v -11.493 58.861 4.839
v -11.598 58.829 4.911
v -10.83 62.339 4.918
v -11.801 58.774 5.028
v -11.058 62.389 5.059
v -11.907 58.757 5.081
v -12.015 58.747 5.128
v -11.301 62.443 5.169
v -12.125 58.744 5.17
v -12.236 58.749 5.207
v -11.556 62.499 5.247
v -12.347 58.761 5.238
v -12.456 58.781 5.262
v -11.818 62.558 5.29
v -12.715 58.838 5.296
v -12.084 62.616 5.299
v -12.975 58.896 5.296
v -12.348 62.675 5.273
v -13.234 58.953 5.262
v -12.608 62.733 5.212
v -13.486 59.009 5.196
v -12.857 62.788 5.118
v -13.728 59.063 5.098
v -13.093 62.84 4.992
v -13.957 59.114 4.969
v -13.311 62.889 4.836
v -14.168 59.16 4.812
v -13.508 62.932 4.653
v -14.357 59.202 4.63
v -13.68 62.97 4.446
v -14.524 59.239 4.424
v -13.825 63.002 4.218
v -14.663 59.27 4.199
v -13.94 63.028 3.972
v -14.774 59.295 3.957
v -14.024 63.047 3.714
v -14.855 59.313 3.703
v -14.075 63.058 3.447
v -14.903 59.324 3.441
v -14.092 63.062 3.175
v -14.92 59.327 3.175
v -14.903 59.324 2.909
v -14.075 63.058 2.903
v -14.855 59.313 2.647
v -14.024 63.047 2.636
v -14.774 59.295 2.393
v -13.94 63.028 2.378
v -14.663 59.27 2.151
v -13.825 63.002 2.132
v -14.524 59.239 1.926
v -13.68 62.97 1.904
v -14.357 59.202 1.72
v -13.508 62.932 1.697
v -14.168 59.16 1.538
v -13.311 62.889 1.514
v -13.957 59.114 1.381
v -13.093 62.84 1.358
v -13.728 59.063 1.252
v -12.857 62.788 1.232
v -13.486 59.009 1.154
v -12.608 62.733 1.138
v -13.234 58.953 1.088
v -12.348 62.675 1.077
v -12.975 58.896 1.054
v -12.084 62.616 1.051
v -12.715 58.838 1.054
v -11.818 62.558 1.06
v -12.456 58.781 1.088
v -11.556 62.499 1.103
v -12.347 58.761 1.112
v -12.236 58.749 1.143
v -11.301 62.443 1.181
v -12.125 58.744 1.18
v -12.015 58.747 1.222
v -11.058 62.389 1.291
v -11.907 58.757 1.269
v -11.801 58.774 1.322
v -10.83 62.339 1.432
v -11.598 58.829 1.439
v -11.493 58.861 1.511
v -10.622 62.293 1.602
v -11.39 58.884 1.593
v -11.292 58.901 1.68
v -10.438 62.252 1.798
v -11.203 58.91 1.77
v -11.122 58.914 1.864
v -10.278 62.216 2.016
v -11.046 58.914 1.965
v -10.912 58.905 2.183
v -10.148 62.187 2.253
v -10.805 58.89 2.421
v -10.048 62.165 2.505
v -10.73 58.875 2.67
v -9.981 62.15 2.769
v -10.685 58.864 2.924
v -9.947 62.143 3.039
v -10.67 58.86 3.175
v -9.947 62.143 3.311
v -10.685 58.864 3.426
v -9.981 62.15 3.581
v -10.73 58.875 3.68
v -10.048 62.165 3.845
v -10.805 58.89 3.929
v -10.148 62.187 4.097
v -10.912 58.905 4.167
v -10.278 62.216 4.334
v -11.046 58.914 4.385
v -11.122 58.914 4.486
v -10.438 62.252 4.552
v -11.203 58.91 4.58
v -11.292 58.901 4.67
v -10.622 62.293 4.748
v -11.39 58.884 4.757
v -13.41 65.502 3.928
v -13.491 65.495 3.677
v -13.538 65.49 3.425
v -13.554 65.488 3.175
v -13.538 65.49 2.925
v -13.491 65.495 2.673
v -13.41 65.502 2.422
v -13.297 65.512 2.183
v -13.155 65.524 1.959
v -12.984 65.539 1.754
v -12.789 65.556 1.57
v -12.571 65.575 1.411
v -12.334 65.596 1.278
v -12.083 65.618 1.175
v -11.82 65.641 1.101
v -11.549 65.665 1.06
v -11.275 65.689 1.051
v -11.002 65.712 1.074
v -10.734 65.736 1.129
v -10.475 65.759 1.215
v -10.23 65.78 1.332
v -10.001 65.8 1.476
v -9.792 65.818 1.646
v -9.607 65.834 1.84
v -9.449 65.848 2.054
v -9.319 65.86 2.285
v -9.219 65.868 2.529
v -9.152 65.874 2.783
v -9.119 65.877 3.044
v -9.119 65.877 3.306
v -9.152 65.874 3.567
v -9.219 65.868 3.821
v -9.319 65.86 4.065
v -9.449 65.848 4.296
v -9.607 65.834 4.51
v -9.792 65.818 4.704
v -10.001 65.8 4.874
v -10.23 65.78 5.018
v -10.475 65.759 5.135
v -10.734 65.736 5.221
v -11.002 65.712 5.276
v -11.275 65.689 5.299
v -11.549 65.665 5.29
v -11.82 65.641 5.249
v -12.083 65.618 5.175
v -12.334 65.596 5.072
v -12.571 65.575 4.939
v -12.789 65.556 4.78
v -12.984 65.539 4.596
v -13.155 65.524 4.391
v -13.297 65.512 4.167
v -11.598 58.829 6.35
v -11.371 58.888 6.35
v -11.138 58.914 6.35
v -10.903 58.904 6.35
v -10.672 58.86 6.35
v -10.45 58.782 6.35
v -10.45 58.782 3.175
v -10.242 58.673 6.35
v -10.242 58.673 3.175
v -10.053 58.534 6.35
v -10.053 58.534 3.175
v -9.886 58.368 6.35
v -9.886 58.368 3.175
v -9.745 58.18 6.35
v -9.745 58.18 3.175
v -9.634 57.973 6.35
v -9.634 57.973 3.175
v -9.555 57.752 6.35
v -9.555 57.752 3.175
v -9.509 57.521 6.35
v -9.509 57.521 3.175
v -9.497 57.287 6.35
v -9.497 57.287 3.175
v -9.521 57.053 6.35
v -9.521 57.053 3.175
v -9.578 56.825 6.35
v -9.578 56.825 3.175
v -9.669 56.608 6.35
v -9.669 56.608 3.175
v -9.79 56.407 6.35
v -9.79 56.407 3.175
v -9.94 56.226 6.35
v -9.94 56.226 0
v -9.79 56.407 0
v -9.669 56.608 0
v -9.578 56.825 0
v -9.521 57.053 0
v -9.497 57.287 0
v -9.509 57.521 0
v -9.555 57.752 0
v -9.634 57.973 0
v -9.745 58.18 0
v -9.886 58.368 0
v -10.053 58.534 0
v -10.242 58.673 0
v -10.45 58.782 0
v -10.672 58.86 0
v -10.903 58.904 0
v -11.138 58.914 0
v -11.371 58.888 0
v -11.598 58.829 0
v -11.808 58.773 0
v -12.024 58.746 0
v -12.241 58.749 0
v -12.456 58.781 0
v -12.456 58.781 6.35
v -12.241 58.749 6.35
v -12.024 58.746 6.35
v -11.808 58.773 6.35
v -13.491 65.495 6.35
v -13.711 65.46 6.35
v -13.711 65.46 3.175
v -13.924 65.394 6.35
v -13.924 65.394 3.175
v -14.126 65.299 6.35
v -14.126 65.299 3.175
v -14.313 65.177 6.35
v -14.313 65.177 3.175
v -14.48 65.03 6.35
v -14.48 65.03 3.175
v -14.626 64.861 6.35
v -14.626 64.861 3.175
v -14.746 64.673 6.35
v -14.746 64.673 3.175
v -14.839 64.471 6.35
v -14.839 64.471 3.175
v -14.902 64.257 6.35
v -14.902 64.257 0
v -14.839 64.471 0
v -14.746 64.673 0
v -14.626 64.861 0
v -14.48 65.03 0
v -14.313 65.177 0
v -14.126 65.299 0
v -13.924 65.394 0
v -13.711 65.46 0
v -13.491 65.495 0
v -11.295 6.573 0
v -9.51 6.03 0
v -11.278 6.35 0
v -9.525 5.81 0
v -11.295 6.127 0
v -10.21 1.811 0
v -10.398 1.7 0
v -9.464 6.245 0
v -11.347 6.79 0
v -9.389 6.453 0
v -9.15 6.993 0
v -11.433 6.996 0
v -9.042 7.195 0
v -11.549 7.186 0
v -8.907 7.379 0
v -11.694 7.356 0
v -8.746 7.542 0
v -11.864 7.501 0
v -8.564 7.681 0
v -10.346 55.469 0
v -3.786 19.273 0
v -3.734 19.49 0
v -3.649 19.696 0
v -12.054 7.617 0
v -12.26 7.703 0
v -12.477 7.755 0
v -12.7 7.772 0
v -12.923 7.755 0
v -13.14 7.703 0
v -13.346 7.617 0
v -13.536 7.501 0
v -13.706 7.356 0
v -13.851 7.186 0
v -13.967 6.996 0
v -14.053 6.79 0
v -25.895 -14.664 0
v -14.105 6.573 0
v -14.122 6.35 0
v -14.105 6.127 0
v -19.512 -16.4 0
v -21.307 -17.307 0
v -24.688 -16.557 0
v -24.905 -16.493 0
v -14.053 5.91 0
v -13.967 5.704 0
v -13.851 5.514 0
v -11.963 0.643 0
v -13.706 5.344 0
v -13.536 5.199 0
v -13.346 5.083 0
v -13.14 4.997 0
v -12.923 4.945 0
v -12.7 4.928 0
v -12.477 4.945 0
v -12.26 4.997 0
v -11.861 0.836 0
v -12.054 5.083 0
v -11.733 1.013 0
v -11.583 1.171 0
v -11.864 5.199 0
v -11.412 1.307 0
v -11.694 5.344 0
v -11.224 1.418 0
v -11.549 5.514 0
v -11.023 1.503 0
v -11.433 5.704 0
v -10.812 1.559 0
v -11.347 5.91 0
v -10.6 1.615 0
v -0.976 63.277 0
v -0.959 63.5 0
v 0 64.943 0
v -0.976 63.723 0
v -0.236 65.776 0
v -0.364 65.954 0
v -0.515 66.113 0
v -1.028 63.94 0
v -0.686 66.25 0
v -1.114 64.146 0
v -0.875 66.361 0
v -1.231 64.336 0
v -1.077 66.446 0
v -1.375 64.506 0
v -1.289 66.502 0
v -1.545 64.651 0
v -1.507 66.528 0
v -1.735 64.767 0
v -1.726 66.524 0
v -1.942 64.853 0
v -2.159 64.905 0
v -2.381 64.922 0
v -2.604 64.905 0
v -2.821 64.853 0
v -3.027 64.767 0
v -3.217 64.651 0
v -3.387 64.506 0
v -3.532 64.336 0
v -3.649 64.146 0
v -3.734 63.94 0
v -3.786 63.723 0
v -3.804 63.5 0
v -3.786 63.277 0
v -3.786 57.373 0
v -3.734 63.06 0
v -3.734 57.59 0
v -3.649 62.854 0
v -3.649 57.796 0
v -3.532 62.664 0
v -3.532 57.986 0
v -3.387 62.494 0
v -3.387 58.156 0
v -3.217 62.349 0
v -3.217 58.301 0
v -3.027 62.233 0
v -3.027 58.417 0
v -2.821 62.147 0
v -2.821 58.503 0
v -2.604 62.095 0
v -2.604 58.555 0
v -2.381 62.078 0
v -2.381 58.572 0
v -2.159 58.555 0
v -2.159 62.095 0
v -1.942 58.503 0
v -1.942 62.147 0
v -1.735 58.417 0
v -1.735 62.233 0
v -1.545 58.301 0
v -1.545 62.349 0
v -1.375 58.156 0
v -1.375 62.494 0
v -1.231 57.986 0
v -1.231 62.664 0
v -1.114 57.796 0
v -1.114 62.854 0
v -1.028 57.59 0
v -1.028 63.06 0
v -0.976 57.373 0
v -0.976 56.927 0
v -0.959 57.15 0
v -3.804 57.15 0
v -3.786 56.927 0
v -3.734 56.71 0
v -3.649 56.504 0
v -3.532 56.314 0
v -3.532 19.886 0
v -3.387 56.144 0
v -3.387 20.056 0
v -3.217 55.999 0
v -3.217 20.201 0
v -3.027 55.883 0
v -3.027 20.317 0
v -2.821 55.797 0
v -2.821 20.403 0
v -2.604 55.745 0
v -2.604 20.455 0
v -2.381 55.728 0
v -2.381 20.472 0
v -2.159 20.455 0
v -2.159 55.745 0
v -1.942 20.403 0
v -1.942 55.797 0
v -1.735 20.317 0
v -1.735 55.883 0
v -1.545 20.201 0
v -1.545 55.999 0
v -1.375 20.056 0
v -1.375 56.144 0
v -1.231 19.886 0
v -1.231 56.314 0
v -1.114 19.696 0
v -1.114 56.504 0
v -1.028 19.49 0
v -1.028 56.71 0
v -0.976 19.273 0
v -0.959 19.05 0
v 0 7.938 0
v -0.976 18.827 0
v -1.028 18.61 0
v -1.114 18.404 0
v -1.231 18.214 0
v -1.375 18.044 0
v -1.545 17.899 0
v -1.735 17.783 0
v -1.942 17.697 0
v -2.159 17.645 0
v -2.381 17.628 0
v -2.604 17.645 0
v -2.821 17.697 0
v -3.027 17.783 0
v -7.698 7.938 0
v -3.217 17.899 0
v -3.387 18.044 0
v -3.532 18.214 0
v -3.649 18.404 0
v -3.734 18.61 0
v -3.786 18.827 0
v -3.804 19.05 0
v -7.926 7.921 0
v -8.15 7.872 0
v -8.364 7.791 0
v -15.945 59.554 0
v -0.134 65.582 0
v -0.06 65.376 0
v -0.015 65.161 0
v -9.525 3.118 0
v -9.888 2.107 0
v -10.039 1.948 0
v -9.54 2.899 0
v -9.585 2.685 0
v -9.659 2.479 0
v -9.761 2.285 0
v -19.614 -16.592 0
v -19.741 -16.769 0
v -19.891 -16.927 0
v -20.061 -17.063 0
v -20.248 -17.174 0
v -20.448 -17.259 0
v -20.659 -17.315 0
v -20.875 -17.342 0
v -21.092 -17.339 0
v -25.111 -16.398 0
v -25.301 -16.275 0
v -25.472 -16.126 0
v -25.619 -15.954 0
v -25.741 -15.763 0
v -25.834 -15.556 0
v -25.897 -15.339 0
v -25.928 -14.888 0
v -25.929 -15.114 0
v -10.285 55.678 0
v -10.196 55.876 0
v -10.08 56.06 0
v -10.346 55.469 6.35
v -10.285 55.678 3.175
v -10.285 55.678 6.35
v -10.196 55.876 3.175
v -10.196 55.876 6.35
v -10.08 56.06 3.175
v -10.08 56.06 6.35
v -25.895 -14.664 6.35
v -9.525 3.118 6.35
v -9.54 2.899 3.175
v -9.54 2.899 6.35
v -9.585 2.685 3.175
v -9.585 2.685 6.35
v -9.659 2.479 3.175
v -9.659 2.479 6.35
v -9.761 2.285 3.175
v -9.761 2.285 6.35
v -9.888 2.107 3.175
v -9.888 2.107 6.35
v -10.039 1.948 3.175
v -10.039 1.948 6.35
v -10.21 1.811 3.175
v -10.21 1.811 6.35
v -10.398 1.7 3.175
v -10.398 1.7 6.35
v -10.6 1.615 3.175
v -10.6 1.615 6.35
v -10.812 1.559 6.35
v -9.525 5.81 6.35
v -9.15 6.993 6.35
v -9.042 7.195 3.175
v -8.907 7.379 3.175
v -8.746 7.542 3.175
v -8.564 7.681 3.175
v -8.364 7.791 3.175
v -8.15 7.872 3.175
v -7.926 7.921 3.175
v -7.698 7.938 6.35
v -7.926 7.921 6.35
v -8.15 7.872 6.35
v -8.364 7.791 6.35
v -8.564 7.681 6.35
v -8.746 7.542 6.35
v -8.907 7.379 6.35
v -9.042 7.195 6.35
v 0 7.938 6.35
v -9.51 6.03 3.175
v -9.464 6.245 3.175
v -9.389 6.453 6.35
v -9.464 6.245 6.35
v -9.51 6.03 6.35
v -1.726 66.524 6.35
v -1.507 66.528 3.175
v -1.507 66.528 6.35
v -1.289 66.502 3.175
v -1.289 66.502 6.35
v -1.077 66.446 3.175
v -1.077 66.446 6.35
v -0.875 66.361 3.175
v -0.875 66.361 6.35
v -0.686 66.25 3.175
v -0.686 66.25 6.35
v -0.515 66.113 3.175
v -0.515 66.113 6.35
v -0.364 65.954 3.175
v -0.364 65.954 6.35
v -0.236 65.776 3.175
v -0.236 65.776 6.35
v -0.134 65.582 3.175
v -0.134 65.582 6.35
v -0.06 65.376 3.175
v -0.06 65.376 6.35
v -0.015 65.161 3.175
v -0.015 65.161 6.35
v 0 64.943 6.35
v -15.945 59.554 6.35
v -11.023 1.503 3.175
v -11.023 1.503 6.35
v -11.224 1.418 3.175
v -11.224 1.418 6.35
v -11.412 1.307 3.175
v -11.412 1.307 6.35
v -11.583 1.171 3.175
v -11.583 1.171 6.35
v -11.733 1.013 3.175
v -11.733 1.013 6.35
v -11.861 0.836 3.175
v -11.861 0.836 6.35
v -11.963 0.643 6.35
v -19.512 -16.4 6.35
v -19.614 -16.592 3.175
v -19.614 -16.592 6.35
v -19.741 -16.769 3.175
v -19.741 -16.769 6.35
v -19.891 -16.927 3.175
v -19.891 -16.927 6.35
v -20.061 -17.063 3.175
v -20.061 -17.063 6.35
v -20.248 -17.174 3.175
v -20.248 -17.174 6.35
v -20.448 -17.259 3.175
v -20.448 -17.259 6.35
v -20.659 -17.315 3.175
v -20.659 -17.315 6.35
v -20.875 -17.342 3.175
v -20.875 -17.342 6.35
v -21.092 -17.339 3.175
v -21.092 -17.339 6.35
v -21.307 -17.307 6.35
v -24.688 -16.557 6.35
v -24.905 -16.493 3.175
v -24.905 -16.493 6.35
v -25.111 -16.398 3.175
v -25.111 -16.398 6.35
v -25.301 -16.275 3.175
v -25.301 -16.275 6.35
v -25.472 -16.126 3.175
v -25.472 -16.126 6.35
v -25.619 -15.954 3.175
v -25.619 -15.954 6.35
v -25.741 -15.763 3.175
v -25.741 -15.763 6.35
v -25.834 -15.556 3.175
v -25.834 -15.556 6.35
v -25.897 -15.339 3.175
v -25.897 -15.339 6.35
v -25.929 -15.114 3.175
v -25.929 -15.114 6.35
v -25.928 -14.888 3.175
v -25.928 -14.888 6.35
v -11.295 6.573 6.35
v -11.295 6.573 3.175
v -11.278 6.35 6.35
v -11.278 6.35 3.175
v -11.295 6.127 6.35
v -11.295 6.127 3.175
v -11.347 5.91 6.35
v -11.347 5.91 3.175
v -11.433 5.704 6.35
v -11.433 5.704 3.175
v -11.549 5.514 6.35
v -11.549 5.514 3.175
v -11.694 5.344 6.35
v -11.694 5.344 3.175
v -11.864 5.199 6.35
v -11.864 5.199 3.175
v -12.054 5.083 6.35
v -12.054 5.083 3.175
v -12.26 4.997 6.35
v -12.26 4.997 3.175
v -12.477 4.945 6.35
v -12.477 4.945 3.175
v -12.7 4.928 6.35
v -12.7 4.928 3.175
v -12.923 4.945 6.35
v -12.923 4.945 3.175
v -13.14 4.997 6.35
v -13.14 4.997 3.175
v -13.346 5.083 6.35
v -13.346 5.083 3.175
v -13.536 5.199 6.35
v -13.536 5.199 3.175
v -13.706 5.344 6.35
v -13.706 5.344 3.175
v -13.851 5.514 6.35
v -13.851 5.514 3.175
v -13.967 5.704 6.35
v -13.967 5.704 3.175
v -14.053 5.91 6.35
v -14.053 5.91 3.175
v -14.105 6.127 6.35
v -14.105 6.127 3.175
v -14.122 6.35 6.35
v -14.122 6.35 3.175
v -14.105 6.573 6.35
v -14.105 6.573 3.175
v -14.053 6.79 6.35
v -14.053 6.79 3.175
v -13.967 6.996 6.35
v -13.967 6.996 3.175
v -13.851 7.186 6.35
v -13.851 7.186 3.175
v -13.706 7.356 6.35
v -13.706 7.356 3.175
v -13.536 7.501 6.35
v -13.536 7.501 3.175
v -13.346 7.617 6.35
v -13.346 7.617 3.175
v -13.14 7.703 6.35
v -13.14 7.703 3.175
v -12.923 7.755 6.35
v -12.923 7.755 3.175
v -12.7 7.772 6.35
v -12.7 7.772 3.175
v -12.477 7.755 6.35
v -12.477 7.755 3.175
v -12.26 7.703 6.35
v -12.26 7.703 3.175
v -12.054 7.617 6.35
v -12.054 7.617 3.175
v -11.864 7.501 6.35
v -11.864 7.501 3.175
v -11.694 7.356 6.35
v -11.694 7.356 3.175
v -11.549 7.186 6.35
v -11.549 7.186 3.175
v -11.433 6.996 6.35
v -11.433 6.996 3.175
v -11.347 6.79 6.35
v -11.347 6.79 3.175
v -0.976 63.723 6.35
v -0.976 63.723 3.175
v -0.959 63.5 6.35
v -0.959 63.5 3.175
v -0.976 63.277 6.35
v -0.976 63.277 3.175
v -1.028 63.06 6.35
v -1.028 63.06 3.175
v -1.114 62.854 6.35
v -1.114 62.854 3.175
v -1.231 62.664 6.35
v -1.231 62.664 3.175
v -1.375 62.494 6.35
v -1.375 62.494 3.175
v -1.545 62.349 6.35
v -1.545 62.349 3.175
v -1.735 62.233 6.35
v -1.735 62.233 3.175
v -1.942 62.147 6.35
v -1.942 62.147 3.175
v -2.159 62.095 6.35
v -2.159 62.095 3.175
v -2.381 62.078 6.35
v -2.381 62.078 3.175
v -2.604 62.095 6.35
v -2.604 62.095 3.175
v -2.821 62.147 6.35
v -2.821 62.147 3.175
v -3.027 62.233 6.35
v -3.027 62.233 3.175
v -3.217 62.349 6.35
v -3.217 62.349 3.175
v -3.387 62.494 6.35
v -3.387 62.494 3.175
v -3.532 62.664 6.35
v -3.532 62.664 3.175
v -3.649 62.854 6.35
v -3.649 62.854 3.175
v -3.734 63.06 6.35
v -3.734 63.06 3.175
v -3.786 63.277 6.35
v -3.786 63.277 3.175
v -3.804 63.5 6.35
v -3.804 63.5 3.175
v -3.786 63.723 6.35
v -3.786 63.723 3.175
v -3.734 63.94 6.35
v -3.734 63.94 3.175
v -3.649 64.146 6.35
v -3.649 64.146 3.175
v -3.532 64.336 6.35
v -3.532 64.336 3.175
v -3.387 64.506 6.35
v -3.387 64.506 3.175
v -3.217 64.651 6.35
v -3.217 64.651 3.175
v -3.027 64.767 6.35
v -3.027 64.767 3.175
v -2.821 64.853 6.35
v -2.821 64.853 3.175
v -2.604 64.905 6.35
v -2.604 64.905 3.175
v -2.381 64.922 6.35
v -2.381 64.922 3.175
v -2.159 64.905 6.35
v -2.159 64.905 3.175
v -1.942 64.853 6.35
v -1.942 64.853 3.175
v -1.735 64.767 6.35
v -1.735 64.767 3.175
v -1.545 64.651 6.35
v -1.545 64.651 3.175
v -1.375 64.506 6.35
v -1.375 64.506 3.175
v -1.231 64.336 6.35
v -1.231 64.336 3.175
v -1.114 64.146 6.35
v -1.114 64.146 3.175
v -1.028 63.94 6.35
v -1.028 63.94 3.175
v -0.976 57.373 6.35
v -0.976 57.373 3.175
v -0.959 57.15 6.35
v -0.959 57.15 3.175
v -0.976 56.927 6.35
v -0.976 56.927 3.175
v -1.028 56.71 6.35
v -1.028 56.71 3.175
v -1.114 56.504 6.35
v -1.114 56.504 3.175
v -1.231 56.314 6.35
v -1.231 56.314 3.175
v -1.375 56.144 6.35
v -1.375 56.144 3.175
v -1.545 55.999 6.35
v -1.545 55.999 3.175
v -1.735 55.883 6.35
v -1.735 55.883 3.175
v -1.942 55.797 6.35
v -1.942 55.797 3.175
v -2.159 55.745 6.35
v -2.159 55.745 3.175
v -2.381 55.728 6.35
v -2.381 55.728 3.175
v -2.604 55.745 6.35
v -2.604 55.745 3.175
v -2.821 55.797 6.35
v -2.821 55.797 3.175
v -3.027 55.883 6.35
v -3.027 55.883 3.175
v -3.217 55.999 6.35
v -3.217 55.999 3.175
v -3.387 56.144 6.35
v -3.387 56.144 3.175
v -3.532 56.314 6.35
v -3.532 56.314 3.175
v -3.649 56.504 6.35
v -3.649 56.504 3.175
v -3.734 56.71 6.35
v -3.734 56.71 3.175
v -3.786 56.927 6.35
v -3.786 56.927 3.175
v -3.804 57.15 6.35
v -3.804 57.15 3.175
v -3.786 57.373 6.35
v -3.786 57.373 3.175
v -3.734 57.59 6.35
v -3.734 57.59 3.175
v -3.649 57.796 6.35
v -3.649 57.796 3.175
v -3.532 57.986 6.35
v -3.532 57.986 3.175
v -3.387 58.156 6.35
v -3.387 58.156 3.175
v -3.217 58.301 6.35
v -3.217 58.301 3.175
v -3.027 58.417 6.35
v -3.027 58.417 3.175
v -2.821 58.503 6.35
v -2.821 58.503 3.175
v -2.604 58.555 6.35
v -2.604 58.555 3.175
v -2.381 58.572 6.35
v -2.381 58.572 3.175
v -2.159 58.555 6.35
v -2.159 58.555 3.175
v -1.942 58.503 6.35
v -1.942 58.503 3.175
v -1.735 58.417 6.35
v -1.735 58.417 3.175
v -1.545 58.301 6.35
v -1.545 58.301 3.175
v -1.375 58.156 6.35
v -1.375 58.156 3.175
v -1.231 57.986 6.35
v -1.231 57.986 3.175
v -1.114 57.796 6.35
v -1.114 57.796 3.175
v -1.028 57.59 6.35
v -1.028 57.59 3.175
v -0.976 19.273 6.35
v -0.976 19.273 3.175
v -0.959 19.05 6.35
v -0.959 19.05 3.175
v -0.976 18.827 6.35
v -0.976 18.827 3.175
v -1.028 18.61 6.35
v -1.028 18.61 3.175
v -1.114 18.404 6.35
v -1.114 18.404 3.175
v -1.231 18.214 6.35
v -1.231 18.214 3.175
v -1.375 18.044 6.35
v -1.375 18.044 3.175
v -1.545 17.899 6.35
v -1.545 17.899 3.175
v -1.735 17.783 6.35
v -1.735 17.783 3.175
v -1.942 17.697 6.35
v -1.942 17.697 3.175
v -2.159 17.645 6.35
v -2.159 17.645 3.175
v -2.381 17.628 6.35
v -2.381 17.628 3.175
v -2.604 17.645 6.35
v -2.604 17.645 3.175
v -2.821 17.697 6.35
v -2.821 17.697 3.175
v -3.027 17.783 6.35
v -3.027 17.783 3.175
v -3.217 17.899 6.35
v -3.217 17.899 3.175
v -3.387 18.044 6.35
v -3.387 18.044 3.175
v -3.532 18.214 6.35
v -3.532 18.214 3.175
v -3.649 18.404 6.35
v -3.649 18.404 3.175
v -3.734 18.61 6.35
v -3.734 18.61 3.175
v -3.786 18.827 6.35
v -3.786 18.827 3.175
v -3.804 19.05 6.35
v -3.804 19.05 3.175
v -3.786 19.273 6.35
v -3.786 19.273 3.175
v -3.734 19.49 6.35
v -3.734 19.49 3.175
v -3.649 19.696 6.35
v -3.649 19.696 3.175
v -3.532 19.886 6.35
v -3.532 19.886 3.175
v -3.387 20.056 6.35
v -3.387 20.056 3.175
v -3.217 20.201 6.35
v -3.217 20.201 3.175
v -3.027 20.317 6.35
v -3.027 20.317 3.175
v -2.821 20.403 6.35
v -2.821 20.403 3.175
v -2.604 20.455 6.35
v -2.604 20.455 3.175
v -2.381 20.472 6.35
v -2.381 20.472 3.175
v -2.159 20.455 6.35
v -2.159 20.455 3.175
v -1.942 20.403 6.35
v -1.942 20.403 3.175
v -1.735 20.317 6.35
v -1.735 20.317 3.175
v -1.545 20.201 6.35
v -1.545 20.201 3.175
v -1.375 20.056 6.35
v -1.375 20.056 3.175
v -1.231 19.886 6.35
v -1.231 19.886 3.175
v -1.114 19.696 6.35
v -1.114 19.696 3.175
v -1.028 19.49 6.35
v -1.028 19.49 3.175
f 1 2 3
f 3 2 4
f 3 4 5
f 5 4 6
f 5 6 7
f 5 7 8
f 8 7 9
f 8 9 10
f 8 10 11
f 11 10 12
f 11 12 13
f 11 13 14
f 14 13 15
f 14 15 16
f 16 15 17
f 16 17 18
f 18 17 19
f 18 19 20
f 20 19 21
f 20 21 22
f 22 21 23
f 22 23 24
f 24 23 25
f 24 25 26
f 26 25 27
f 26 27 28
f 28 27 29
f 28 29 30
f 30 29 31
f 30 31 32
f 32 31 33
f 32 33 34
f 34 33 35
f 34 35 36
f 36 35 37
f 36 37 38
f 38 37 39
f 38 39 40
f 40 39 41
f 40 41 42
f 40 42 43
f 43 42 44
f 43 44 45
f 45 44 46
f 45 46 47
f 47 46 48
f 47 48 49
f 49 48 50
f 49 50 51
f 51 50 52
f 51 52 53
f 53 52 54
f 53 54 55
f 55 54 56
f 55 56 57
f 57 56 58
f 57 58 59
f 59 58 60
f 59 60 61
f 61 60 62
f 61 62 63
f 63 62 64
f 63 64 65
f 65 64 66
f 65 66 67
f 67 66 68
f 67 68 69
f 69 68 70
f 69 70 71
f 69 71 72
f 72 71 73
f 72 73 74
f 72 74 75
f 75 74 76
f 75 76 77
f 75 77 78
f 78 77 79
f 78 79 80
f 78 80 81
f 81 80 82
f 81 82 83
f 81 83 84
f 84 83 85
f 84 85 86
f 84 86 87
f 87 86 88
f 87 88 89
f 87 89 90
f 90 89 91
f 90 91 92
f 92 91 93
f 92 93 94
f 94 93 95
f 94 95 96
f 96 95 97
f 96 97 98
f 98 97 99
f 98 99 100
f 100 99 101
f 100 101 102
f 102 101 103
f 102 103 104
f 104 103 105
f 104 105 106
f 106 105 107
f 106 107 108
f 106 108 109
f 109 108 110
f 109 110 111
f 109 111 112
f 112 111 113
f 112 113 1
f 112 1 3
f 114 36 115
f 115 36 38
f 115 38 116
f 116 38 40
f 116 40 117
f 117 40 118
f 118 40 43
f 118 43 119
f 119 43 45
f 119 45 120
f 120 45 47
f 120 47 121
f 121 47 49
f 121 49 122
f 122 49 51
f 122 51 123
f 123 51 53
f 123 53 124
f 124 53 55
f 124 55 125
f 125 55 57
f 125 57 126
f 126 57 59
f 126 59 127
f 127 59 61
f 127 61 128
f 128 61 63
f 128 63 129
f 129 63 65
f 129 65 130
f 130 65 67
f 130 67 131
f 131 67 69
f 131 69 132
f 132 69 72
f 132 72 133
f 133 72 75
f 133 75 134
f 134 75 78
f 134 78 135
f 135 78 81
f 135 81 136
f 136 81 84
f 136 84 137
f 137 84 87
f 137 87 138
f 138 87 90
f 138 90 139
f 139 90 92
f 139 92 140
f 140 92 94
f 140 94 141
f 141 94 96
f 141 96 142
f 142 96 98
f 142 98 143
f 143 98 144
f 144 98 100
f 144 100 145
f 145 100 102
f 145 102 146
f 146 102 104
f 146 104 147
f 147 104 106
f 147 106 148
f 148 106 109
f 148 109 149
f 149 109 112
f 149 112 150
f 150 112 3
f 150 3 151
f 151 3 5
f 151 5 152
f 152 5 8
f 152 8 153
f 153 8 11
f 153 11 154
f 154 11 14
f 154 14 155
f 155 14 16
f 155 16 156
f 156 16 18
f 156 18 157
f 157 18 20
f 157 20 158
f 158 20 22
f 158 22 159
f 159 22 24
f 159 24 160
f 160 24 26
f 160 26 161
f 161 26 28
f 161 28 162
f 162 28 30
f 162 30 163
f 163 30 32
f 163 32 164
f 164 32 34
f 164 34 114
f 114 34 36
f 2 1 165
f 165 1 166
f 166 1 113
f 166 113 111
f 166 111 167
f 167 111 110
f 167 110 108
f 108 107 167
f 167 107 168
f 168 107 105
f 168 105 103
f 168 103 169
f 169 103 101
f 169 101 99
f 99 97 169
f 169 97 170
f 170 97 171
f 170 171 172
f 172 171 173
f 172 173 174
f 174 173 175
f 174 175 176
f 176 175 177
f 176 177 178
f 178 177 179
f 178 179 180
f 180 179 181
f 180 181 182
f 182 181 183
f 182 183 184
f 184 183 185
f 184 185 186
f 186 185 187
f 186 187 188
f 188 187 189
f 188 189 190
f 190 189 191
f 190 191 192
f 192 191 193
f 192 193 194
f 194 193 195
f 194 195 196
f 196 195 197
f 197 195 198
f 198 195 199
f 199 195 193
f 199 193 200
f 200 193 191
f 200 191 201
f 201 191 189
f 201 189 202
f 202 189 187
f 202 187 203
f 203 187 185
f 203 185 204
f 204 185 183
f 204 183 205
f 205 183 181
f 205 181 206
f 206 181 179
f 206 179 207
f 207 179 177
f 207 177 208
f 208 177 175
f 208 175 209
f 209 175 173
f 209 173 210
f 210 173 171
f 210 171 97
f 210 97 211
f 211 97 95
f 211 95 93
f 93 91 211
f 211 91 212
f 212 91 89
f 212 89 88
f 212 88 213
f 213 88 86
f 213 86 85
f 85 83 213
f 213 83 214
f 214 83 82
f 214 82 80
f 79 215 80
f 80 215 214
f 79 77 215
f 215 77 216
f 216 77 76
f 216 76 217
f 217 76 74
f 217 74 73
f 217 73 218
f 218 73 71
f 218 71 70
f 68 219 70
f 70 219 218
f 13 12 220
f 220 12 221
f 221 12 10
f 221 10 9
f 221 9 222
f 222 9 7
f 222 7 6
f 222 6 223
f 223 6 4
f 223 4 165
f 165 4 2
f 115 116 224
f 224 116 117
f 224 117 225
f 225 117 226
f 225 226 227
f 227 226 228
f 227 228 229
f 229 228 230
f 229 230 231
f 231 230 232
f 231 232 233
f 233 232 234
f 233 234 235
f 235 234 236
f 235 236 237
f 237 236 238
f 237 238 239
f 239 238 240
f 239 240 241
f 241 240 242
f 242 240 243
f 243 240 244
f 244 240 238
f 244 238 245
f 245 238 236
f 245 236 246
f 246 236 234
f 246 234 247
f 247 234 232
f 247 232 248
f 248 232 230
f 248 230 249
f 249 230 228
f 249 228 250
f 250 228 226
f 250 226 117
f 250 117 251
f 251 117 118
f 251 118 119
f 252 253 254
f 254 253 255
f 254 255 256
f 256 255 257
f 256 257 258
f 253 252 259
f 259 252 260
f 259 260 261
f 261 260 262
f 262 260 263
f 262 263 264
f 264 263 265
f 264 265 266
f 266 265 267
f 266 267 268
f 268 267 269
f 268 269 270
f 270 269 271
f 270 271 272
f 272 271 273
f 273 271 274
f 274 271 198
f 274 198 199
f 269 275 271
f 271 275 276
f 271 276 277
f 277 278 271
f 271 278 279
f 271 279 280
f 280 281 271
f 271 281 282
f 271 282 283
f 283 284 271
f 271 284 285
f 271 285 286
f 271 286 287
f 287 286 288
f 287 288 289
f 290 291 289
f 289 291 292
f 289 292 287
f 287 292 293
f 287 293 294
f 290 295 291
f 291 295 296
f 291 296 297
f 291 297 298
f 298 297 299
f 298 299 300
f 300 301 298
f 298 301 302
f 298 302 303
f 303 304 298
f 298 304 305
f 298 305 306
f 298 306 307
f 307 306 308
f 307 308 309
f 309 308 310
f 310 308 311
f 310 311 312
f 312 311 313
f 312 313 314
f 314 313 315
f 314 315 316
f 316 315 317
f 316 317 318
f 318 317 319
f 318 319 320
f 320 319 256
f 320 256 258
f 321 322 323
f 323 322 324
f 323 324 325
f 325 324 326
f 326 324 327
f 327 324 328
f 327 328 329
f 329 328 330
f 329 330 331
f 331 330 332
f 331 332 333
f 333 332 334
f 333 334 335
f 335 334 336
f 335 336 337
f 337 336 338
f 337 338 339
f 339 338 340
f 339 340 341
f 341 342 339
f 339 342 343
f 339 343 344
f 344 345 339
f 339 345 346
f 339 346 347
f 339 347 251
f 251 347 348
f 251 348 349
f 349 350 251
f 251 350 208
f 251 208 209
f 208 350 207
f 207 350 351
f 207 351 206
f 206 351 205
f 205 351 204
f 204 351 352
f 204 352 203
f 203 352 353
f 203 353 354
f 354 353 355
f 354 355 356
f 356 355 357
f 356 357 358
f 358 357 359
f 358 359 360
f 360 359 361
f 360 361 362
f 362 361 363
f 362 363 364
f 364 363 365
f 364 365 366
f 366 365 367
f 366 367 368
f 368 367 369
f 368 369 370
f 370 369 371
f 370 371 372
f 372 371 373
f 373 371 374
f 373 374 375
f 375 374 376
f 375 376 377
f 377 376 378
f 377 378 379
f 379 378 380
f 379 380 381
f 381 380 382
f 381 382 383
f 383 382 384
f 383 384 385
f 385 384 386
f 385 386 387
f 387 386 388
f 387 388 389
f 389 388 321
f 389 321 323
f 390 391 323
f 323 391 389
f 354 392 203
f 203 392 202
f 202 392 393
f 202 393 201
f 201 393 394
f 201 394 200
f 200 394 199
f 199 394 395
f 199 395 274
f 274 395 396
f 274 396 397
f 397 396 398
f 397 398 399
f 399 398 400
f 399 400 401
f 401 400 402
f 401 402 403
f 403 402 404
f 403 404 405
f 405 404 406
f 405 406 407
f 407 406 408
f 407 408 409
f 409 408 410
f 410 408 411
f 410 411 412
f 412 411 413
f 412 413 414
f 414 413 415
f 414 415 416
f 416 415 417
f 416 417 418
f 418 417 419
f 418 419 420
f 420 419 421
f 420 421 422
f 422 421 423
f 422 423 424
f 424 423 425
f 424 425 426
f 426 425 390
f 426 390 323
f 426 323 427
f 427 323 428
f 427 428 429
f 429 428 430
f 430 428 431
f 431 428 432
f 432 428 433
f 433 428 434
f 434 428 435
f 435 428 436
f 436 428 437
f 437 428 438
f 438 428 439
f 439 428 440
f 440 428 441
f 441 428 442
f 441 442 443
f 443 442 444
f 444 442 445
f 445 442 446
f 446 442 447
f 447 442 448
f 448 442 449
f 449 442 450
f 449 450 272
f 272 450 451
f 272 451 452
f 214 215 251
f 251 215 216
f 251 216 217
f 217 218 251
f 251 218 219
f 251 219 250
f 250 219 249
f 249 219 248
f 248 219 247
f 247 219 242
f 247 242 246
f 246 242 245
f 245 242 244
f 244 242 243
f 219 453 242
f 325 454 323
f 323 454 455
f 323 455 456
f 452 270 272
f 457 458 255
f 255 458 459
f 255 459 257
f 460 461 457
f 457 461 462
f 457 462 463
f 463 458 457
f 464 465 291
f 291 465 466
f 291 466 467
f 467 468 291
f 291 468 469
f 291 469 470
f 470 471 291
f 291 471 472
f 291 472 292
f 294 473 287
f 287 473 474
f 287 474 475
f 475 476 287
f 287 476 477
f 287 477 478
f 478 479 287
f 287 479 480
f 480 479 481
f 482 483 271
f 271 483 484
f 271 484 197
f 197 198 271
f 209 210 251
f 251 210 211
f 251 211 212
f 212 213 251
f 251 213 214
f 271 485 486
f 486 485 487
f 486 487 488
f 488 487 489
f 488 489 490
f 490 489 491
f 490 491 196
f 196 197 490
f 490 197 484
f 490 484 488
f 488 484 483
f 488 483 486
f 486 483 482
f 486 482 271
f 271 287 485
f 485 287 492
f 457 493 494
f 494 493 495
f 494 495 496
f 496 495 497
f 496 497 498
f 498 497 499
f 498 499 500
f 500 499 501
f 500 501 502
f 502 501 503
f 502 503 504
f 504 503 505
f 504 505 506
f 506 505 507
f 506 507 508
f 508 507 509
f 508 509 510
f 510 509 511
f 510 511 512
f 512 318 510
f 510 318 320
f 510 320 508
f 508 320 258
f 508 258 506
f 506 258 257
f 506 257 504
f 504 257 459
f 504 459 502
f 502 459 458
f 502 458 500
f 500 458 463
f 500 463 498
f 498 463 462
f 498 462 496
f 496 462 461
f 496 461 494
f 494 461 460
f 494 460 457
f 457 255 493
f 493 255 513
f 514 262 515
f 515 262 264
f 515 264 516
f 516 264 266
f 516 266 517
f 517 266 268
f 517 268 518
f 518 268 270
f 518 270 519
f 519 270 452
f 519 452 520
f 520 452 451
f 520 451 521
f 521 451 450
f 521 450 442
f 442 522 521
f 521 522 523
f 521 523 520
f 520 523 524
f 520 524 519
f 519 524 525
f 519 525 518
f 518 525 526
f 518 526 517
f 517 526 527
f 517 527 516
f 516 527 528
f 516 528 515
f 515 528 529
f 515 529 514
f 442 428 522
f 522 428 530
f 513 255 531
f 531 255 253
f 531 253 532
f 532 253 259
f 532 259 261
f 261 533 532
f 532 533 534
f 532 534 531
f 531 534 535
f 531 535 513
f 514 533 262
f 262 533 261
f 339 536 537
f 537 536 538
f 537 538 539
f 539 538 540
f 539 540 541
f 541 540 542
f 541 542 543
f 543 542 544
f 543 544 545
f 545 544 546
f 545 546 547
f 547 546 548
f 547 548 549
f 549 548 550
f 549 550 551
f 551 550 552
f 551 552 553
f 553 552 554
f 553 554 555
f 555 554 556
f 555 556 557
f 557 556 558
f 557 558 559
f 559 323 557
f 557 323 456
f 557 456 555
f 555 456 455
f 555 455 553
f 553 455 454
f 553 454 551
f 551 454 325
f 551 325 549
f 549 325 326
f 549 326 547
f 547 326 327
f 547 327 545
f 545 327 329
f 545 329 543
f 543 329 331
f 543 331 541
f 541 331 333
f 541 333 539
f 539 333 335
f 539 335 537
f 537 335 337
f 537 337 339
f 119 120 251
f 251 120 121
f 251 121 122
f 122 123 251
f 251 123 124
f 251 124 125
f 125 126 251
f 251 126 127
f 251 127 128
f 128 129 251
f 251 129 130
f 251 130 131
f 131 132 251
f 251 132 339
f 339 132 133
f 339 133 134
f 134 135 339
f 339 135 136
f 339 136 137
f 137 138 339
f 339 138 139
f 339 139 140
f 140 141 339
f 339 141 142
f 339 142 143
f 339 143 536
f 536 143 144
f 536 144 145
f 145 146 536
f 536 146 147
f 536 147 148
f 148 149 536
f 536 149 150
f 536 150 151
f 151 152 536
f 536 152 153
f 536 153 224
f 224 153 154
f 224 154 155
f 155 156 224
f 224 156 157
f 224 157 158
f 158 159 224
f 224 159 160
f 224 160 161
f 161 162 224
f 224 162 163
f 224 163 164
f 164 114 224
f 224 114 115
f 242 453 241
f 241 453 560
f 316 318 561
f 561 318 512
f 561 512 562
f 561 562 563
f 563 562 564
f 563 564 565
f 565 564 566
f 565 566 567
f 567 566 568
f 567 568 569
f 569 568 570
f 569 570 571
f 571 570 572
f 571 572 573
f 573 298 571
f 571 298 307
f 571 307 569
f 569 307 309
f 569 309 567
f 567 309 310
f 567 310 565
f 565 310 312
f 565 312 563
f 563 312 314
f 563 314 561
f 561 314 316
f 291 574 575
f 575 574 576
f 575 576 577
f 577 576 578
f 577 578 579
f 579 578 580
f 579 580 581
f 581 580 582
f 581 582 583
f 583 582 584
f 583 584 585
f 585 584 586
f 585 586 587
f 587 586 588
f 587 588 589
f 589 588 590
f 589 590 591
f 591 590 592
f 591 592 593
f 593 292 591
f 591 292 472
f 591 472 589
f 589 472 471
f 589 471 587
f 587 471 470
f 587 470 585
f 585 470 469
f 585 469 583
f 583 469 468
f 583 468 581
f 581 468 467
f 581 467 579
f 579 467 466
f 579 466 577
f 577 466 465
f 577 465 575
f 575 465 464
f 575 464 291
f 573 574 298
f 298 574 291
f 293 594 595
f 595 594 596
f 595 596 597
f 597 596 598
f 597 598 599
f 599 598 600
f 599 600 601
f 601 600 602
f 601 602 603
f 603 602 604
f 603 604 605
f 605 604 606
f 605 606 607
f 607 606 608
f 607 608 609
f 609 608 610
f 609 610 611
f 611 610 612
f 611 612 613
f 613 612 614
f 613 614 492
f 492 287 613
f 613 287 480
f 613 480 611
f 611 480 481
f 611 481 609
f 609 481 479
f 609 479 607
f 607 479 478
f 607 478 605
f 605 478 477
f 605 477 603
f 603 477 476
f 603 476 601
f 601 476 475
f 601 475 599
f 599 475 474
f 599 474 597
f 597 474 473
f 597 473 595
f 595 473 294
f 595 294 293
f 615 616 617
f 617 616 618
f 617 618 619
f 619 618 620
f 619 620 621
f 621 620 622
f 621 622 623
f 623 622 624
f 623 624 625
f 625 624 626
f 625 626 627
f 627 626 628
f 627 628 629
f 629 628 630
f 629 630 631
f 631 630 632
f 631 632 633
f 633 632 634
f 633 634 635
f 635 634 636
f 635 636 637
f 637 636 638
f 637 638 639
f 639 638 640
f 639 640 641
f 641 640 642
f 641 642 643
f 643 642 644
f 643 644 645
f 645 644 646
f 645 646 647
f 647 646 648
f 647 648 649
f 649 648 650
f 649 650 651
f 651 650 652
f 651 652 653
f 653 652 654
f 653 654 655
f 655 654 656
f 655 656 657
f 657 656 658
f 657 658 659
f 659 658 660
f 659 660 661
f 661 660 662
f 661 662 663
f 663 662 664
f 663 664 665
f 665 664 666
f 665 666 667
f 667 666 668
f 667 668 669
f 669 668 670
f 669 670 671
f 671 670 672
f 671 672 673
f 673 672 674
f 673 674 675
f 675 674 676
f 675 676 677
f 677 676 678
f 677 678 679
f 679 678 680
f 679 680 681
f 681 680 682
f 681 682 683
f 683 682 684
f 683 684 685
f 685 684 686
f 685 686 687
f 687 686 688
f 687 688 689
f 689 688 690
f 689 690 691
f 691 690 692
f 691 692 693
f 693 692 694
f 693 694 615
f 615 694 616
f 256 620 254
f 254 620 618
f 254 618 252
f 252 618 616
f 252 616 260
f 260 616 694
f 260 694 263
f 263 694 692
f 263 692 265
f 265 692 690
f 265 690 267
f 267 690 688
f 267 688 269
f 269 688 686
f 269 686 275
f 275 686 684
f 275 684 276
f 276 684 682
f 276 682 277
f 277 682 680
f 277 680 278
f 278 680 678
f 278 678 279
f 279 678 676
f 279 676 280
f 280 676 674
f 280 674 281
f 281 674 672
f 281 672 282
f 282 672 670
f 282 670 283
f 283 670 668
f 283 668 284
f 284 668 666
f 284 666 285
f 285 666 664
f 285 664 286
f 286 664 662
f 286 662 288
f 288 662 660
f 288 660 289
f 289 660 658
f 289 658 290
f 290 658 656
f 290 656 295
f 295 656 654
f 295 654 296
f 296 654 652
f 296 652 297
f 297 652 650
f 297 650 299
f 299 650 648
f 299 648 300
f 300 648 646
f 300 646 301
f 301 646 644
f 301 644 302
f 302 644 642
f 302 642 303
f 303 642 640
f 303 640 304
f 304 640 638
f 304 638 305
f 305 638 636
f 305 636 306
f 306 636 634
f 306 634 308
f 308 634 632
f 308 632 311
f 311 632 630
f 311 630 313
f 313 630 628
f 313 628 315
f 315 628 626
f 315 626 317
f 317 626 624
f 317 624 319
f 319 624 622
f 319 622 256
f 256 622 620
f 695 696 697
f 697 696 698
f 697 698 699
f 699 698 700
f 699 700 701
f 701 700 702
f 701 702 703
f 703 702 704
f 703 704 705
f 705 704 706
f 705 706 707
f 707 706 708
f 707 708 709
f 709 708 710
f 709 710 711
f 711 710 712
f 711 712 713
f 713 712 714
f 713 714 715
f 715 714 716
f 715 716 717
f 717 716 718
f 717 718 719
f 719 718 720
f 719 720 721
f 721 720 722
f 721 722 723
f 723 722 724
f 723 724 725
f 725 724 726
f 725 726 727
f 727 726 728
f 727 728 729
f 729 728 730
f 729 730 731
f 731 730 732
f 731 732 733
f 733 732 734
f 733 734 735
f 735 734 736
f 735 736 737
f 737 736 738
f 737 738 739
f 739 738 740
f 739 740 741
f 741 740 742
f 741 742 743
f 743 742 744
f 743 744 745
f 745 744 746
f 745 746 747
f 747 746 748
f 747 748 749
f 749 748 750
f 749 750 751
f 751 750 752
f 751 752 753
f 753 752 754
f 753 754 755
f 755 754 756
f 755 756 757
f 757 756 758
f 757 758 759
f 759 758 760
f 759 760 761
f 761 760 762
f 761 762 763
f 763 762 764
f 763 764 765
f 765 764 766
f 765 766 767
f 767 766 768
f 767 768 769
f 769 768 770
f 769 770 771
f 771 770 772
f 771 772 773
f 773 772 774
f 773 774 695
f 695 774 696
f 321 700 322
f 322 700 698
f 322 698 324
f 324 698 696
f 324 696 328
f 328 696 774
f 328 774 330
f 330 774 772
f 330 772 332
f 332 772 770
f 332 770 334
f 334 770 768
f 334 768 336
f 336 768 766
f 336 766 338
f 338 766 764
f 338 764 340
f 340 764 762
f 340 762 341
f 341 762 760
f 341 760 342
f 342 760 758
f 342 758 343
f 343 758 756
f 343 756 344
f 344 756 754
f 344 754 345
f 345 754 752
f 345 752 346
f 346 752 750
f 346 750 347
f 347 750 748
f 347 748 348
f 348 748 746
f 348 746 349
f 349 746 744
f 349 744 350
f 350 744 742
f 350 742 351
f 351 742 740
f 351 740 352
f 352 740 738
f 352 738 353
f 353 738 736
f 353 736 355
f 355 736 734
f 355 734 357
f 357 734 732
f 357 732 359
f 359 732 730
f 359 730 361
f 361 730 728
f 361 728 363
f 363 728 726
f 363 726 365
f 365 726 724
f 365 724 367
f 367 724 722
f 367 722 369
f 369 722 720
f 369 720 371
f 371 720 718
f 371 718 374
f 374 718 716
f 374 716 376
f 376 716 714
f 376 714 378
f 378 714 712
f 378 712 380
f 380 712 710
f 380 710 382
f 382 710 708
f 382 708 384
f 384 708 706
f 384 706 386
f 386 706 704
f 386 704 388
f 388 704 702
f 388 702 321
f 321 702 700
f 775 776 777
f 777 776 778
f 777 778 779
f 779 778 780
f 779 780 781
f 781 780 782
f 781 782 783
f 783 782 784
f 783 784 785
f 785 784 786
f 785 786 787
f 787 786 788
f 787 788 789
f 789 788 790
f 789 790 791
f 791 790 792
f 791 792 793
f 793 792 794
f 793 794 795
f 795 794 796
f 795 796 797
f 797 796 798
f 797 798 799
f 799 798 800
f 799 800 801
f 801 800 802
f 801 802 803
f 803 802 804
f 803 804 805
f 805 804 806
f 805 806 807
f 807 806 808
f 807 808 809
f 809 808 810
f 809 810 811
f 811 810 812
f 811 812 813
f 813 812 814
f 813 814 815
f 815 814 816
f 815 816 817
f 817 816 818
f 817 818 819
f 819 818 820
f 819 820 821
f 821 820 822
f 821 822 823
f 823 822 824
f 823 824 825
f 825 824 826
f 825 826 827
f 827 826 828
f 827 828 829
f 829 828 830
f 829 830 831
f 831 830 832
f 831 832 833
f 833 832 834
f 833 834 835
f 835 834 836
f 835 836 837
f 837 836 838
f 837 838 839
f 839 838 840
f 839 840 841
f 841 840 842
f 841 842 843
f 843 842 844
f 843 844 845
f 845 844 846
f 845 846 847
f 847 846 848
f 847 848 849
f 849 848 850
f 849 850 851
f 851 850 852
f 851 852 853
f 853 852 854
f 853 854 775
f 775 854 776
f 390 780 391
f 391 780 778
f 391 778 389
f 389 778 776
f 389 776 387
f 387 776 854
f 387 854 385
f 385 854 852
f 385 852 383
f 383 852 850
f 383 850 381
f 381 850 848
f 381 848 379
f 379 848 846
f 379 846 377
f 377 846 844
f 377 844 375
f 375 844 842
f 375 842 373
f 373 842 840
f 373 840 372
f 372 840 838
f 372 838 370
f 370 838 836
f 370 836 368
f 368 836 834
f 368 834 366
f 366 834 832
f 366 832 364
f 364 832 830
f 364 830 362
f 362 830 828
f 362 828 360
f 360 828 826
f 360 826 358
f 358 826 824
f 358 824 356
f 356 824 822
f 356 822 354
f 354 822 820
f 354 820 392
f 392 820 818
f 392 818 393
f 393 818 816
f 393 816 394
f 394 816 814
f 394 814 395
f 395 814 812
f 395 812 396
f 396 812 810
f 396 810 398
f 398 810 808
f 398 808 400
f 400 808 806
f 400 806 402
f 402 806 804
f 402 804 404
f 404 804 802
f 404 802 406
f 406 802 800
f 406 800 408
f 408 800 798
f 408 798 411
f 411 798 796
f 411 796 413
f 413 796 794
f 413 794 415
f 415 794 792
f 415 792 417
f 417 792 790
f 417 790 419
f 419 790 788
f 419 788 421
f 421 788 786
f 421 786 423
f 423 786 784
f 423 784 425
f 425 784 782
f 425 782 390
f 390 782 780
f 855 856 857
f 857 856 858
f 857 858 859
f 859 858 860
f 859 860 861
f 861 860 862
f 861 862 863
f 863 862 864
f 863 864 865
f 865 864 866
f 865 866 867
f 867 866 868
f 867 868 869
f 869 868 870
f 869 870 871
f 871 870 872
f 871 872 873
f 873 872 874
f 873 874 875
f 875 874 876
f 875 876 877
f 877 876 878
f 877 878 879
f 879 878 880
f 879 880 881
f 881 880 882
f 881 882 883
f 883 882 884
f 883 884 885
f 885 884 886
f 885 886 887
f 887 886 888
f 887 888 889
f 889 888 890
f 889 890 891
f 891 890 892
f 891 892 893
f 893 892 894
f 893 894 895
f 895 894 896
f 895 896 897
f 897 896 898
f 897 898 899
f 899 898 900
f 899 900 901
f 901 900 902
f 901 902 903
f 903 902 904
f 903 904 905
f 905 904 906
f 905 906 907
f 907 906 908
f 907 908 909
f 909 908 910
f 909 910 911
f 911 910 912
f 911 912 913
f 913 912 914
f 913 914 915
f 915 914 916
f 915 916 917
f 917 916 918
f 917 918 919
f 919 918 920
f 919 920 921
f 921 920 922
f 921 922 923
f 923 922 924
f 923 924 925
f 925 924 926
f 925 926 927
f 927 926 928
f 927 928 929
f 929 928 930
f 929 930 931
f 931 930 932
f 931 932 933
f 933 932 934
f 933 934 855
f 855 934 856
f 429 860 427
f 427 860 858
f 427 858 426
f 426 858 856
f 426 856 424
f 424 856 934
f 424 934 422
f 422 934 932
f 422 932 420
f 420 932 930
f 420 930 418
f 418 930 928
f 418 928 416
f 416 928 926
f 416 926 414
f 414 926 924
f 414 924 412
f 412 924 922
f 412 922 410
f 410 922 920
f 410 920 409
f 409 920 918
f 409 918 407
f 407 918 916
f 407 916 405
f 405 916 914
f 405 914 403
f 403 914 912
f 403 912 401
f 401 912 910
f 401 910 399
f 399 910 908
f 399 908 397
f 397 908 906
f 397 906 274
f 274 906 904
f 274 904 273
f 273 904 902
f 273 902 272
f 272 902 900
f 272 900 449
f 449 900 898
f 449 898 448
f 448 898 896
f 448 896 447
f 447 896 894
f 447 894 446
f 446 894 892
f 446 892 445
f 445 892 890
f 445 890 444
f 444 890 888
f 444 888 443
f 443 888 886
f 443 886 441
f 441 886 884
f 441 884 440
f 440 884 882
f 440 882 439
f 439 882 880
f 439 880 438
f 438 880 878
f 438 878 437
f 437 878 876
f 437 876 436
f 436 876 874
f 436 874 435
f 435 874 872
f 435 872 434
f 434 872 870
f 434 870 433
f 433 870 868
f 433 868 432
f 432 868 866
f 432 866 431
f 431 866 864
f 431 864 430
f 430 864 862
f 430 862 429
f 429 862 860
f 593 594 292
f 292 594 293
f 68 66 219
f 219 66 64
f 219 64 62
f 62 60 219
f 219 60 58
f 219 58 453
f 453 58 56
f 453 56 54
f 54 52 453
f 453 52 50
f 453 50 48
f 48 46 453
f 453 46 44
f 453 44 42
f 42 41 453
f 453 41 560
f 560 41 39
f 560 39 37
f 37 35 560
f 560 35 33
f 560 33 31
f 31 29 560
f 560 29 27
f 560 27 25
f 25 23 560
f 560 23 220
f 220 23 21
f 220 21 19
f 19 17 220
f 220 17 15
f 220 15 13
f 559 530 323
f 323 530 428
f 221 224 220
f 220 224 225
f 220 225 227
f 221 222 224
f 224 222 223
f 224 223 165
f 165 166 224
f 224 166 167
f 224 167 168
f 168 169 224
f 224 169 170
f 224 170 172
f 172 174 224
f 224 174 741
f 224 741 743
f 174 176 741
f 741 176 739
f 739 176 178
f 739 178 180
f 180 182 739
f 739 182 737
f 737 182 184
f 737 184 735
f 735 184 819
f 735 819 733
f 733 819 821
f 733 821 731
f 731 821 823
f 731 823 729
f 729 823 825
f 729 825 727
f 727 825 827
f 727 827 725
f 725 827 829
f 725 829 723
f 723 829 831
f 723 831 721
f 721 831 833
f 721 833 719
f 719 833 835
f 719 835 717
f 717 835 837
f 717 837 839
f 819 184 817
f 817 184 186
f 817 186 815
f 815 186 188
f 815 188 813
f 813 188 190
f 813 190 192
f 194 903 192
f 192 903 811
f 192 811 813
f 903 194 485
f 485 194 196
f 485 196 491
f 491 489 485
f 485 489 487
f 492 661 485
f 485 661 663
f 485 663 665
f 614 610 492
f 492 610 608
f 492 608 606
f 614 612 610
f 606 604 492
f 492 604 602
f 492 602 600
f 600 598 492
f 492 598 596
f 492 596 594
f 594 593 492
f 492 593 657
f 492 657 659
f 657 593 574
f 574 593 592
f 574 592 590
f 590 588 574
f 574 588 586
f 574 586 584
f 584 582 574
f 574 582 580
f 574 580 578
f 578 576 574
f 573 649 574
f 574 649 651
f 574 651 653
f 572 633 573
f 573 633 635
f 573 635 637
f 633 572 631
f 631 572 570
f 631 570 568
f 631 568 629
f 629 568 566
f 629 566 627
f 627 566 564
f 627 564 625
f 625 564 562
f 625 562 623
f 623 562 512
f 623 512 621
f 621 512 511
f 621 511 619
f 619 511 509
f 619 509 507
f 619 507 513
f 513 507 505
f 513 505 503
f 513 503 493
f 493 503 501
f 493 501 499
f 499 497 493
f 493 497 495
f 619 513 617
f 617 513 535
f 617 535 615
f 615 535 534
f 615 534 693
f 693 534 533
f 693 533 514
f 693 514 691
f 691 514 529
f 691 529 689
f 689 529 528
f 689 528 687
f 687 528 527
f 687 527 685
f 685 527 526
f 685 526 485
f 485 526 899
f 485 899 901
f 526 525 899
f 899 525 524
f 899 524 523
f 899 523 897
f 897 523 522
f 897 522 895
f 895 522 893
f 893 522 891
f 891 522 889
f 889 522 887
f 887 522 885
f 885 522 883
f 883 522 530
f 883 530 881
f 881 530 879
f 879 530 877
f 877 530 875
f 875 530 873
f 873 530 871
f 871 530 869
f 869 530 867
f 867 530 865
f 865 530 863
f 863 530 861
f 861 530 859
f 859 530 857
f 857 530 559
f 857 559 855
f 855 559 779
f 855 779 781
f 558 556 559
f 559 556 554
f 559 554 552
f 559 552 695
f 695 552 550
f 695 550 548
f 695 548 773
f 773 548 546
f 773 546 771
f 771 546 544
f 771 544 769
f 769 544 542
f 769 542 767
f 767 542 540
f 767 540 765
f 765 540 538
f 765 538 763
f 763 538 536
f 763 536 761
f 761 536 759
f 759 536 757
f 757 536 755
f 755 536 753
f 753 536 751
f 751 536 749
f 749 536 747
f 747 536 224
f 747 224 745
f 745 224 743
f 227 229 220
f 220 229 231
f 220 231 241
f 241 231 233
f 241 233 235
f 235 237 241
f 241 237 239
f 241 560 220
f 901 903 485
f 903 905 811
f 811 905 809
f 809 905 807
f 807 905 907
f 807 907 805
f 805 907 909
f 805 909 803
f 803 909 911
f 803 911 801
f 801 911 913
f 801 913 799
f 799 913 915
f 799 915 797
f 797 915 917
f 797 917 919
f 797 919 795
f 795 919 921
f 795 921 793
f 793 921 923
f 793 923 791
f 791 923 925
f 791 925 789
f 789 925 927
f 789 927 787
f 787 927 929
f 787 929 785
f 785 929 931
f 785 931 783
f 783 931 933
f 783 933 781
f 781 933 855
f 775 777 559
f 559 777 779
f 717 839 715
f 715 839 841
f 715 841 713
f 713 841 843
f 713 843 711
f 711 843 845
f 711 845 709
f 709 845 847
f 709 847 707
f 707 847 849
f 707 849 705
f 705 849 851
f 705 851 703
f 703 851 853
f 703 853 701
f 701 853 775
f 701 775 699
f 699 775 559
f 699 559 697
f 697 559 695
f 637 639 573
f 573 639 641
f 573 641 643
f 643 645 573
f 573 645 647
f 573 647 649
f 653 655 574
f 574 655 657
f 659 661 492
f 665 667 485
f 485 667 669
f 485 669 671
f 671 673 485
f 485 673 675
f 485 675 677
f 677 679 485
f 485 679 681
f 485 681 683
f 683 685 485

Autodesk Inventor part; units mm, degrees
ref_plane "YZ Plane" through (0, 0, 0) normal (1, 0, 0) x (0, 1, 0)
ref_plane "XZ Plane" through (0, 0, 0) normal (0, 1, 0) x (-1, 0, 0)
ref_plane "XY Plane" through (0, 0, 0) normal (0, 0, 1) x (1, 0, 0)
sketch "Sketch1" plane through (0, 0, 0) normal (0, 0, 1) x (1, 0, 0)
  line L0 (0, 0) -> (0, 136.525) construction
  line L1 (-11.7886, 12.2907) -> (-39.6863, 18.4755) construction
  line L2 (-39.6863, 18.4755) -> (-33.3297, 47.1481) construction
  line L3 (-33.3297, 47.1481) -> (-5.432, 40.9633) construction
  line L4 (-5.432, 40.9633) -> (-11.7886, 12.2907) construction
  line L5 (-39.6863, 18.4755) -> (-5.432, 40.9633) construction
  line L6 (-33.3297, 47.1481) -> (-11.7886, 12.2907) construction
  circle A0 centre (-53.975, 12.7) radius 3.175 construction
  circle A1 centre (-53.975, 12.7) radius 6.35 construction
  line L7 (0, 0) -> (-54.712, 6.3929) construction
  line L8 (-59.6703, 15.5082) -> (0, 136.525) construction
  line L9 (-27.1302, 45.7737) -> (-37.4529, 28.5497) construction
  line L10 (-11.6315, 42.3377) -> (-9.5552, 22.3649) construction
  line L11 (-19.3809, 44.0557) -> (-25.7374, 15.3831) construction
  line L12 (0, 92.075) -> (-19.7574, 96.4551) construction
  line L13 (-35.3766, 8.5768) -> (-19.8779, 5.1408) construction
  line L14 (-19.8779, 5.1408) -> (-21.2523, -1.0586) construction
  line L15 (-21.2523, -1.0586) -> (-36.751, 2.3773) construction
  line L16 (-36.751, 2.3773) -> (-35.3766, 8.5768) construction
  line L17 (-35.3766, 8.5768) -> (-41.27, 4.8223) construction
  line L18 (-19.8779, 5.1408) -> (-17.9381, 2.096) construction
  line L19 (-5.432, 40.9633) -> (-33.3297, 47.1481) construction
  line L20 (-33.3297, 47.1481) -> (-32.2475, 52.0296) construction
  line L21 (-32.2475, 52.0296) -> (-4.3498, 45.8448) construction
  line L22 (-4.3498, 45.8448) -> (-5.432, 40.9633) construction
  line L23 (-53.2878, 15.7997) -> (-53.975, 12.7) construction
  line L24 (-53.975, 12.7) -> (-57.0747, 13.3872) construction
  line L25 (-27.6272, 6.8588) -> (-34.4992, -24.1386) construction
  line L26 (-31.8676, 50.076) -> (-5.5198, 44.2349)
  line L27 (-5.5198, 44.2349) -> (-4.489, 48.8845) construction
  line L28 (-4.489, 48.8845) -> (-30.8368, 54.7256) construction
  line L29 (-30.8368, 54.7256) -> (-31.8676, 50.076) construction
  line L30 (-31.3522, 52.4008) -> (-5.0044, 46.5597) construction
  circle A2 centre (-29.0274, 51.8854) radius 1.4732 construction
  circle A3 centre (-22.8279, 50.5111) radius 1.4732 construction
  circle A4 centre (-16.6284, 49.1367) radius 1.4732 construction
  circle A5 centre (-10.4289, 47.7623) radius 1.4732
  circle A6 centre (-10.3614, 84.7398) radius 1.4732 construction
  line L31 (-53.975, 12.7) -> (-13.3751, 95.0402) construction
  line L32 (-32.2923, 56.6744) -> (0, 49.5153) construction
  circle A7 centre (-10.3614, 84.7398) radius 4.7625 construction
  line L33 (-4.7625, 50.5712) -> (-4.7625, 93.1308) construction
  line L34 (-27.5056, 55.6132) -> (-14.3936, 82.2055) construction
  line L35 (-5.6003, 84.6261) -> (-4.7625, 84.4403) construction
  line L36 (-17.9381, 2.096) -> (0, 2.096) construction
  line L37 (0, 2.096) -> (0, -1.079) construction
  line L38 (0, -1.079) -> (-17.9381, -1.079) construction
  line L39 (-17.9381, -1.079) -> (-17.9381, 2.096) construction
  circle A8 centre (-12.7, 7.9375) radius 1.5875 construction
  line L40 (-12.7, 7.9375) -> (0, 7.9375)
  line L41 (0, 7.9375) -> (-17.9381, 2.096) construction
  circle A9 centre (-12.7, 7.9375) radius 3.175 construction
  line L42 (-9.525, 7.9375) -> (-9.525, 4.8357) construction
  line L43 (-9.525, 7.9375) -> (0, 7.9375) construction
  line L44 (-17.9187, 46.9837) -> (-16.8879, 51.6333)
  line L45 (-12.4942, 45.7811) -> (-26.2381, -16.2137)
  line L46 (0, 66.675) -> (0, 7.9375)
  line L47 (-26.2381, -16.2137) -> (-20.0386, -17.5881)
  line L48 (-20.0386, -17.5881) -> (-8.7313, 7.9375)
  circle A10 centre (-12.7, 6.35) radius 1.4224
  line L49 (0, 13.4938) -> (-4.7625, 13.4938) construction
  line L50 (-4.7625, 13.4938) -> (-4.7625, 24.6063) construction
  line L51 (-4.7625, 24.6063) -> (0, 24.6063) construction
  line L52 (0, 24.6063) -> (0, 13.4938)
  line L53 (-4.7625, 19.05) -> (0, 19.05) construction
  circle A11 centre (-2.3813, 19.05) radius 1.4224
  line L54 (-20.7405, 8.5842) -> (-9.7454, 58.18)
  line L55 (-9.7454, 58.18) -> (-3.5459, 56.8056) construction
  line L56 (-3.5459, 56.8056) -> (-14.5411, 7.2098) construction
  line L57 (-14.5411, 7.2098) -> (-20.7405, 8.5842)
  line L58 (-12.7, 6.35) -> (-12.7, 7.9375) construction
  line L59 (-11.5442, 1.5875) -> (-9.525, 1.5875)
  line L60 (-9.525, 1.5875) -> (-9.525, 7.9375)
  line L61 (-9.525, 7.9375) -> (-11.5442, 7.9375)
  line L62 (-11.5442, 7.9375) -> (-11.5442, 1.5875) construction
  line L63 (-9.7454, 58.18) -> (-15.9449, 59.5544)
  line L64 (-15.9449, 59.5544) -> (-14.6504, 65.3933)
  line L65 (-14.6504, 65.3933) -> (0, 66.675)
  line L66 (-9.7454, 58.18) -> (-17.3193, 53.3549) construction
  arc A12 (-10.2313, 55.9882) -> (-11.9373, 58.6659) centre (-11.0843, 57.3271) ccw
  line L67 (-4.7625, 57.15) -> (0, 57.15) construction
  circle A13 centre (-2.3813, 57.15) radius 1.4224
  circle A14 centre (-2.3813, 63.5) radius 1.4224
  point P0 (-22.5591, 29.7194)
  point P1 (-20.4869, 2.3938)
  point P2 (-36.3367, 4.2458)
  point P3 (-51.1668, 18.3953)
  point P4 (-11.1125, 7.9375)
  point P5 (-11.4283, 6.9872)
  point P6 (-11.9574, 7.9375)
  point P7 (-13.9717, 6.9872)
  point P8 (-9.525, 6.1457)
  dimension "d74" = 6.35
  dimension "d13" = 136.525
  dimension "d14" = 29.3687
  dimension "d15" = 28.575
  dimension "d16" = 12.5
  dimension "d17" = 6.35
  dimension "d19" = 53.975
  dimension "d22" = 12.7
  dimension "d23" = 7.9375
  dimension "d24" = 19.05
  dimension "d26" = 102.5
  dimension "d29" = 6.35
  dimension "d31" = 7.9375
  dimension "d34" = 5
  dimension "d35" = 26.9875
  dimension "d38" = 31.75
  dimension "d40" = 26.9875
  dimension "d41" = 4.7625
  dimension "d42" = 2.9464
  dimension "d43" = 2.3813
  dimension "d46" = 6.35
  dimension "d51" = 2.9464
  dimension "d52" = 79.7719
  dimension "d53" = 6.35
  dimension "d54" = 9.525
  dimension "d55" = 4.7625
  dimension "d56" = 4.7625
  dimension "d60" = 12.7
  dimension "d61" = 3.175
  dimension "d63" = 3.175
  dimension "d66" = 3.175
  dimension "d67" = 12.7
  dimension "d72" = 8.7312
  dimension "d73" = 7.9375
  dimension "d75" = 34.925
  dimension "d80" = 12.7
  dimension "d82" = 7.9375
  dimension "d83" = 63.5
  dimension "d84" = 66.675
  dimension "d85" = 6.35
  dimension "d86" = 92.075
  dimension "d87" = 2.8448
  dimension "d88" = 4.7625
  dimension "d89" = 11.1125
  dimension "d90" = 2.8448
  dimension "d91" = 19.05
  dimension "d92" = 6.35
  dimension "d93" = 50.8
  dimension "d94" = 25.4
  dimension "d95" = 8.7312
  dimension "d96" = 9.525
  dimension "d97" = 6.35
  dimension "d99" = 6.35
  dimension "d101" = 3.175
  dimension "d106" = 2.8448
  dimension "d107" = 57.15
  dimension "d110" = 6.35
  dimension "d119" = 85
extrude "Extrusion1" add sketch "Sketch1" along normal blind 6.35 contours A5 | L60 L48 L47 L45 L54 A12 L63 L64 L65 L46 L40 | L40 L48 L60 | L60 L59 L48
fillet "Fillet1" radius 1.5875 8 edges at (-26.2381, -16.2137, 3.175) (-20.0386, -17.5881, 3.175) (-11.5442, 1.5875, 3.175) (-9.525, 1.5875, 3.175) (-14.6504, 65.3933, 3.175) (0, 66.675, 3.175) (-9.525, 6.1457, 3.175) (-8.7313, 7.9375, 3.175)
fillet "Fillet4" radius 1.5875 2 edges at (-10.2313, 55.9882, 3.175) (-11.9373, 58.6659, 3.175)
sketch "Sketch2" plane through (-15.9449, 59.5544, 0) normal (-0.2164396, -0.976296, 0) x (0.976296, -0.2164396, 0)
  line L0 (12.3735, 0) -> (1.1101, 0) projected
  line L1 (3.175, 0) -> (3.175, 6.35) construction
  line L2 (0, 6.35) -> (3.5733, 6.35) projected
  circle A0 centre (3.175, 3.175) radius 2.125
  line L3 (0, 0) -> (0, 6.35) projected
  point P0 (28.4569, 0)
  dimension "d115" = 4.25
  dimension "d116" = 3.175
extrude "Extrusion2" cut sketch "Sketch2" against normal through all
equation "\"d56\" = d55"
properties part number "Uprights" material "UHMW, White"
